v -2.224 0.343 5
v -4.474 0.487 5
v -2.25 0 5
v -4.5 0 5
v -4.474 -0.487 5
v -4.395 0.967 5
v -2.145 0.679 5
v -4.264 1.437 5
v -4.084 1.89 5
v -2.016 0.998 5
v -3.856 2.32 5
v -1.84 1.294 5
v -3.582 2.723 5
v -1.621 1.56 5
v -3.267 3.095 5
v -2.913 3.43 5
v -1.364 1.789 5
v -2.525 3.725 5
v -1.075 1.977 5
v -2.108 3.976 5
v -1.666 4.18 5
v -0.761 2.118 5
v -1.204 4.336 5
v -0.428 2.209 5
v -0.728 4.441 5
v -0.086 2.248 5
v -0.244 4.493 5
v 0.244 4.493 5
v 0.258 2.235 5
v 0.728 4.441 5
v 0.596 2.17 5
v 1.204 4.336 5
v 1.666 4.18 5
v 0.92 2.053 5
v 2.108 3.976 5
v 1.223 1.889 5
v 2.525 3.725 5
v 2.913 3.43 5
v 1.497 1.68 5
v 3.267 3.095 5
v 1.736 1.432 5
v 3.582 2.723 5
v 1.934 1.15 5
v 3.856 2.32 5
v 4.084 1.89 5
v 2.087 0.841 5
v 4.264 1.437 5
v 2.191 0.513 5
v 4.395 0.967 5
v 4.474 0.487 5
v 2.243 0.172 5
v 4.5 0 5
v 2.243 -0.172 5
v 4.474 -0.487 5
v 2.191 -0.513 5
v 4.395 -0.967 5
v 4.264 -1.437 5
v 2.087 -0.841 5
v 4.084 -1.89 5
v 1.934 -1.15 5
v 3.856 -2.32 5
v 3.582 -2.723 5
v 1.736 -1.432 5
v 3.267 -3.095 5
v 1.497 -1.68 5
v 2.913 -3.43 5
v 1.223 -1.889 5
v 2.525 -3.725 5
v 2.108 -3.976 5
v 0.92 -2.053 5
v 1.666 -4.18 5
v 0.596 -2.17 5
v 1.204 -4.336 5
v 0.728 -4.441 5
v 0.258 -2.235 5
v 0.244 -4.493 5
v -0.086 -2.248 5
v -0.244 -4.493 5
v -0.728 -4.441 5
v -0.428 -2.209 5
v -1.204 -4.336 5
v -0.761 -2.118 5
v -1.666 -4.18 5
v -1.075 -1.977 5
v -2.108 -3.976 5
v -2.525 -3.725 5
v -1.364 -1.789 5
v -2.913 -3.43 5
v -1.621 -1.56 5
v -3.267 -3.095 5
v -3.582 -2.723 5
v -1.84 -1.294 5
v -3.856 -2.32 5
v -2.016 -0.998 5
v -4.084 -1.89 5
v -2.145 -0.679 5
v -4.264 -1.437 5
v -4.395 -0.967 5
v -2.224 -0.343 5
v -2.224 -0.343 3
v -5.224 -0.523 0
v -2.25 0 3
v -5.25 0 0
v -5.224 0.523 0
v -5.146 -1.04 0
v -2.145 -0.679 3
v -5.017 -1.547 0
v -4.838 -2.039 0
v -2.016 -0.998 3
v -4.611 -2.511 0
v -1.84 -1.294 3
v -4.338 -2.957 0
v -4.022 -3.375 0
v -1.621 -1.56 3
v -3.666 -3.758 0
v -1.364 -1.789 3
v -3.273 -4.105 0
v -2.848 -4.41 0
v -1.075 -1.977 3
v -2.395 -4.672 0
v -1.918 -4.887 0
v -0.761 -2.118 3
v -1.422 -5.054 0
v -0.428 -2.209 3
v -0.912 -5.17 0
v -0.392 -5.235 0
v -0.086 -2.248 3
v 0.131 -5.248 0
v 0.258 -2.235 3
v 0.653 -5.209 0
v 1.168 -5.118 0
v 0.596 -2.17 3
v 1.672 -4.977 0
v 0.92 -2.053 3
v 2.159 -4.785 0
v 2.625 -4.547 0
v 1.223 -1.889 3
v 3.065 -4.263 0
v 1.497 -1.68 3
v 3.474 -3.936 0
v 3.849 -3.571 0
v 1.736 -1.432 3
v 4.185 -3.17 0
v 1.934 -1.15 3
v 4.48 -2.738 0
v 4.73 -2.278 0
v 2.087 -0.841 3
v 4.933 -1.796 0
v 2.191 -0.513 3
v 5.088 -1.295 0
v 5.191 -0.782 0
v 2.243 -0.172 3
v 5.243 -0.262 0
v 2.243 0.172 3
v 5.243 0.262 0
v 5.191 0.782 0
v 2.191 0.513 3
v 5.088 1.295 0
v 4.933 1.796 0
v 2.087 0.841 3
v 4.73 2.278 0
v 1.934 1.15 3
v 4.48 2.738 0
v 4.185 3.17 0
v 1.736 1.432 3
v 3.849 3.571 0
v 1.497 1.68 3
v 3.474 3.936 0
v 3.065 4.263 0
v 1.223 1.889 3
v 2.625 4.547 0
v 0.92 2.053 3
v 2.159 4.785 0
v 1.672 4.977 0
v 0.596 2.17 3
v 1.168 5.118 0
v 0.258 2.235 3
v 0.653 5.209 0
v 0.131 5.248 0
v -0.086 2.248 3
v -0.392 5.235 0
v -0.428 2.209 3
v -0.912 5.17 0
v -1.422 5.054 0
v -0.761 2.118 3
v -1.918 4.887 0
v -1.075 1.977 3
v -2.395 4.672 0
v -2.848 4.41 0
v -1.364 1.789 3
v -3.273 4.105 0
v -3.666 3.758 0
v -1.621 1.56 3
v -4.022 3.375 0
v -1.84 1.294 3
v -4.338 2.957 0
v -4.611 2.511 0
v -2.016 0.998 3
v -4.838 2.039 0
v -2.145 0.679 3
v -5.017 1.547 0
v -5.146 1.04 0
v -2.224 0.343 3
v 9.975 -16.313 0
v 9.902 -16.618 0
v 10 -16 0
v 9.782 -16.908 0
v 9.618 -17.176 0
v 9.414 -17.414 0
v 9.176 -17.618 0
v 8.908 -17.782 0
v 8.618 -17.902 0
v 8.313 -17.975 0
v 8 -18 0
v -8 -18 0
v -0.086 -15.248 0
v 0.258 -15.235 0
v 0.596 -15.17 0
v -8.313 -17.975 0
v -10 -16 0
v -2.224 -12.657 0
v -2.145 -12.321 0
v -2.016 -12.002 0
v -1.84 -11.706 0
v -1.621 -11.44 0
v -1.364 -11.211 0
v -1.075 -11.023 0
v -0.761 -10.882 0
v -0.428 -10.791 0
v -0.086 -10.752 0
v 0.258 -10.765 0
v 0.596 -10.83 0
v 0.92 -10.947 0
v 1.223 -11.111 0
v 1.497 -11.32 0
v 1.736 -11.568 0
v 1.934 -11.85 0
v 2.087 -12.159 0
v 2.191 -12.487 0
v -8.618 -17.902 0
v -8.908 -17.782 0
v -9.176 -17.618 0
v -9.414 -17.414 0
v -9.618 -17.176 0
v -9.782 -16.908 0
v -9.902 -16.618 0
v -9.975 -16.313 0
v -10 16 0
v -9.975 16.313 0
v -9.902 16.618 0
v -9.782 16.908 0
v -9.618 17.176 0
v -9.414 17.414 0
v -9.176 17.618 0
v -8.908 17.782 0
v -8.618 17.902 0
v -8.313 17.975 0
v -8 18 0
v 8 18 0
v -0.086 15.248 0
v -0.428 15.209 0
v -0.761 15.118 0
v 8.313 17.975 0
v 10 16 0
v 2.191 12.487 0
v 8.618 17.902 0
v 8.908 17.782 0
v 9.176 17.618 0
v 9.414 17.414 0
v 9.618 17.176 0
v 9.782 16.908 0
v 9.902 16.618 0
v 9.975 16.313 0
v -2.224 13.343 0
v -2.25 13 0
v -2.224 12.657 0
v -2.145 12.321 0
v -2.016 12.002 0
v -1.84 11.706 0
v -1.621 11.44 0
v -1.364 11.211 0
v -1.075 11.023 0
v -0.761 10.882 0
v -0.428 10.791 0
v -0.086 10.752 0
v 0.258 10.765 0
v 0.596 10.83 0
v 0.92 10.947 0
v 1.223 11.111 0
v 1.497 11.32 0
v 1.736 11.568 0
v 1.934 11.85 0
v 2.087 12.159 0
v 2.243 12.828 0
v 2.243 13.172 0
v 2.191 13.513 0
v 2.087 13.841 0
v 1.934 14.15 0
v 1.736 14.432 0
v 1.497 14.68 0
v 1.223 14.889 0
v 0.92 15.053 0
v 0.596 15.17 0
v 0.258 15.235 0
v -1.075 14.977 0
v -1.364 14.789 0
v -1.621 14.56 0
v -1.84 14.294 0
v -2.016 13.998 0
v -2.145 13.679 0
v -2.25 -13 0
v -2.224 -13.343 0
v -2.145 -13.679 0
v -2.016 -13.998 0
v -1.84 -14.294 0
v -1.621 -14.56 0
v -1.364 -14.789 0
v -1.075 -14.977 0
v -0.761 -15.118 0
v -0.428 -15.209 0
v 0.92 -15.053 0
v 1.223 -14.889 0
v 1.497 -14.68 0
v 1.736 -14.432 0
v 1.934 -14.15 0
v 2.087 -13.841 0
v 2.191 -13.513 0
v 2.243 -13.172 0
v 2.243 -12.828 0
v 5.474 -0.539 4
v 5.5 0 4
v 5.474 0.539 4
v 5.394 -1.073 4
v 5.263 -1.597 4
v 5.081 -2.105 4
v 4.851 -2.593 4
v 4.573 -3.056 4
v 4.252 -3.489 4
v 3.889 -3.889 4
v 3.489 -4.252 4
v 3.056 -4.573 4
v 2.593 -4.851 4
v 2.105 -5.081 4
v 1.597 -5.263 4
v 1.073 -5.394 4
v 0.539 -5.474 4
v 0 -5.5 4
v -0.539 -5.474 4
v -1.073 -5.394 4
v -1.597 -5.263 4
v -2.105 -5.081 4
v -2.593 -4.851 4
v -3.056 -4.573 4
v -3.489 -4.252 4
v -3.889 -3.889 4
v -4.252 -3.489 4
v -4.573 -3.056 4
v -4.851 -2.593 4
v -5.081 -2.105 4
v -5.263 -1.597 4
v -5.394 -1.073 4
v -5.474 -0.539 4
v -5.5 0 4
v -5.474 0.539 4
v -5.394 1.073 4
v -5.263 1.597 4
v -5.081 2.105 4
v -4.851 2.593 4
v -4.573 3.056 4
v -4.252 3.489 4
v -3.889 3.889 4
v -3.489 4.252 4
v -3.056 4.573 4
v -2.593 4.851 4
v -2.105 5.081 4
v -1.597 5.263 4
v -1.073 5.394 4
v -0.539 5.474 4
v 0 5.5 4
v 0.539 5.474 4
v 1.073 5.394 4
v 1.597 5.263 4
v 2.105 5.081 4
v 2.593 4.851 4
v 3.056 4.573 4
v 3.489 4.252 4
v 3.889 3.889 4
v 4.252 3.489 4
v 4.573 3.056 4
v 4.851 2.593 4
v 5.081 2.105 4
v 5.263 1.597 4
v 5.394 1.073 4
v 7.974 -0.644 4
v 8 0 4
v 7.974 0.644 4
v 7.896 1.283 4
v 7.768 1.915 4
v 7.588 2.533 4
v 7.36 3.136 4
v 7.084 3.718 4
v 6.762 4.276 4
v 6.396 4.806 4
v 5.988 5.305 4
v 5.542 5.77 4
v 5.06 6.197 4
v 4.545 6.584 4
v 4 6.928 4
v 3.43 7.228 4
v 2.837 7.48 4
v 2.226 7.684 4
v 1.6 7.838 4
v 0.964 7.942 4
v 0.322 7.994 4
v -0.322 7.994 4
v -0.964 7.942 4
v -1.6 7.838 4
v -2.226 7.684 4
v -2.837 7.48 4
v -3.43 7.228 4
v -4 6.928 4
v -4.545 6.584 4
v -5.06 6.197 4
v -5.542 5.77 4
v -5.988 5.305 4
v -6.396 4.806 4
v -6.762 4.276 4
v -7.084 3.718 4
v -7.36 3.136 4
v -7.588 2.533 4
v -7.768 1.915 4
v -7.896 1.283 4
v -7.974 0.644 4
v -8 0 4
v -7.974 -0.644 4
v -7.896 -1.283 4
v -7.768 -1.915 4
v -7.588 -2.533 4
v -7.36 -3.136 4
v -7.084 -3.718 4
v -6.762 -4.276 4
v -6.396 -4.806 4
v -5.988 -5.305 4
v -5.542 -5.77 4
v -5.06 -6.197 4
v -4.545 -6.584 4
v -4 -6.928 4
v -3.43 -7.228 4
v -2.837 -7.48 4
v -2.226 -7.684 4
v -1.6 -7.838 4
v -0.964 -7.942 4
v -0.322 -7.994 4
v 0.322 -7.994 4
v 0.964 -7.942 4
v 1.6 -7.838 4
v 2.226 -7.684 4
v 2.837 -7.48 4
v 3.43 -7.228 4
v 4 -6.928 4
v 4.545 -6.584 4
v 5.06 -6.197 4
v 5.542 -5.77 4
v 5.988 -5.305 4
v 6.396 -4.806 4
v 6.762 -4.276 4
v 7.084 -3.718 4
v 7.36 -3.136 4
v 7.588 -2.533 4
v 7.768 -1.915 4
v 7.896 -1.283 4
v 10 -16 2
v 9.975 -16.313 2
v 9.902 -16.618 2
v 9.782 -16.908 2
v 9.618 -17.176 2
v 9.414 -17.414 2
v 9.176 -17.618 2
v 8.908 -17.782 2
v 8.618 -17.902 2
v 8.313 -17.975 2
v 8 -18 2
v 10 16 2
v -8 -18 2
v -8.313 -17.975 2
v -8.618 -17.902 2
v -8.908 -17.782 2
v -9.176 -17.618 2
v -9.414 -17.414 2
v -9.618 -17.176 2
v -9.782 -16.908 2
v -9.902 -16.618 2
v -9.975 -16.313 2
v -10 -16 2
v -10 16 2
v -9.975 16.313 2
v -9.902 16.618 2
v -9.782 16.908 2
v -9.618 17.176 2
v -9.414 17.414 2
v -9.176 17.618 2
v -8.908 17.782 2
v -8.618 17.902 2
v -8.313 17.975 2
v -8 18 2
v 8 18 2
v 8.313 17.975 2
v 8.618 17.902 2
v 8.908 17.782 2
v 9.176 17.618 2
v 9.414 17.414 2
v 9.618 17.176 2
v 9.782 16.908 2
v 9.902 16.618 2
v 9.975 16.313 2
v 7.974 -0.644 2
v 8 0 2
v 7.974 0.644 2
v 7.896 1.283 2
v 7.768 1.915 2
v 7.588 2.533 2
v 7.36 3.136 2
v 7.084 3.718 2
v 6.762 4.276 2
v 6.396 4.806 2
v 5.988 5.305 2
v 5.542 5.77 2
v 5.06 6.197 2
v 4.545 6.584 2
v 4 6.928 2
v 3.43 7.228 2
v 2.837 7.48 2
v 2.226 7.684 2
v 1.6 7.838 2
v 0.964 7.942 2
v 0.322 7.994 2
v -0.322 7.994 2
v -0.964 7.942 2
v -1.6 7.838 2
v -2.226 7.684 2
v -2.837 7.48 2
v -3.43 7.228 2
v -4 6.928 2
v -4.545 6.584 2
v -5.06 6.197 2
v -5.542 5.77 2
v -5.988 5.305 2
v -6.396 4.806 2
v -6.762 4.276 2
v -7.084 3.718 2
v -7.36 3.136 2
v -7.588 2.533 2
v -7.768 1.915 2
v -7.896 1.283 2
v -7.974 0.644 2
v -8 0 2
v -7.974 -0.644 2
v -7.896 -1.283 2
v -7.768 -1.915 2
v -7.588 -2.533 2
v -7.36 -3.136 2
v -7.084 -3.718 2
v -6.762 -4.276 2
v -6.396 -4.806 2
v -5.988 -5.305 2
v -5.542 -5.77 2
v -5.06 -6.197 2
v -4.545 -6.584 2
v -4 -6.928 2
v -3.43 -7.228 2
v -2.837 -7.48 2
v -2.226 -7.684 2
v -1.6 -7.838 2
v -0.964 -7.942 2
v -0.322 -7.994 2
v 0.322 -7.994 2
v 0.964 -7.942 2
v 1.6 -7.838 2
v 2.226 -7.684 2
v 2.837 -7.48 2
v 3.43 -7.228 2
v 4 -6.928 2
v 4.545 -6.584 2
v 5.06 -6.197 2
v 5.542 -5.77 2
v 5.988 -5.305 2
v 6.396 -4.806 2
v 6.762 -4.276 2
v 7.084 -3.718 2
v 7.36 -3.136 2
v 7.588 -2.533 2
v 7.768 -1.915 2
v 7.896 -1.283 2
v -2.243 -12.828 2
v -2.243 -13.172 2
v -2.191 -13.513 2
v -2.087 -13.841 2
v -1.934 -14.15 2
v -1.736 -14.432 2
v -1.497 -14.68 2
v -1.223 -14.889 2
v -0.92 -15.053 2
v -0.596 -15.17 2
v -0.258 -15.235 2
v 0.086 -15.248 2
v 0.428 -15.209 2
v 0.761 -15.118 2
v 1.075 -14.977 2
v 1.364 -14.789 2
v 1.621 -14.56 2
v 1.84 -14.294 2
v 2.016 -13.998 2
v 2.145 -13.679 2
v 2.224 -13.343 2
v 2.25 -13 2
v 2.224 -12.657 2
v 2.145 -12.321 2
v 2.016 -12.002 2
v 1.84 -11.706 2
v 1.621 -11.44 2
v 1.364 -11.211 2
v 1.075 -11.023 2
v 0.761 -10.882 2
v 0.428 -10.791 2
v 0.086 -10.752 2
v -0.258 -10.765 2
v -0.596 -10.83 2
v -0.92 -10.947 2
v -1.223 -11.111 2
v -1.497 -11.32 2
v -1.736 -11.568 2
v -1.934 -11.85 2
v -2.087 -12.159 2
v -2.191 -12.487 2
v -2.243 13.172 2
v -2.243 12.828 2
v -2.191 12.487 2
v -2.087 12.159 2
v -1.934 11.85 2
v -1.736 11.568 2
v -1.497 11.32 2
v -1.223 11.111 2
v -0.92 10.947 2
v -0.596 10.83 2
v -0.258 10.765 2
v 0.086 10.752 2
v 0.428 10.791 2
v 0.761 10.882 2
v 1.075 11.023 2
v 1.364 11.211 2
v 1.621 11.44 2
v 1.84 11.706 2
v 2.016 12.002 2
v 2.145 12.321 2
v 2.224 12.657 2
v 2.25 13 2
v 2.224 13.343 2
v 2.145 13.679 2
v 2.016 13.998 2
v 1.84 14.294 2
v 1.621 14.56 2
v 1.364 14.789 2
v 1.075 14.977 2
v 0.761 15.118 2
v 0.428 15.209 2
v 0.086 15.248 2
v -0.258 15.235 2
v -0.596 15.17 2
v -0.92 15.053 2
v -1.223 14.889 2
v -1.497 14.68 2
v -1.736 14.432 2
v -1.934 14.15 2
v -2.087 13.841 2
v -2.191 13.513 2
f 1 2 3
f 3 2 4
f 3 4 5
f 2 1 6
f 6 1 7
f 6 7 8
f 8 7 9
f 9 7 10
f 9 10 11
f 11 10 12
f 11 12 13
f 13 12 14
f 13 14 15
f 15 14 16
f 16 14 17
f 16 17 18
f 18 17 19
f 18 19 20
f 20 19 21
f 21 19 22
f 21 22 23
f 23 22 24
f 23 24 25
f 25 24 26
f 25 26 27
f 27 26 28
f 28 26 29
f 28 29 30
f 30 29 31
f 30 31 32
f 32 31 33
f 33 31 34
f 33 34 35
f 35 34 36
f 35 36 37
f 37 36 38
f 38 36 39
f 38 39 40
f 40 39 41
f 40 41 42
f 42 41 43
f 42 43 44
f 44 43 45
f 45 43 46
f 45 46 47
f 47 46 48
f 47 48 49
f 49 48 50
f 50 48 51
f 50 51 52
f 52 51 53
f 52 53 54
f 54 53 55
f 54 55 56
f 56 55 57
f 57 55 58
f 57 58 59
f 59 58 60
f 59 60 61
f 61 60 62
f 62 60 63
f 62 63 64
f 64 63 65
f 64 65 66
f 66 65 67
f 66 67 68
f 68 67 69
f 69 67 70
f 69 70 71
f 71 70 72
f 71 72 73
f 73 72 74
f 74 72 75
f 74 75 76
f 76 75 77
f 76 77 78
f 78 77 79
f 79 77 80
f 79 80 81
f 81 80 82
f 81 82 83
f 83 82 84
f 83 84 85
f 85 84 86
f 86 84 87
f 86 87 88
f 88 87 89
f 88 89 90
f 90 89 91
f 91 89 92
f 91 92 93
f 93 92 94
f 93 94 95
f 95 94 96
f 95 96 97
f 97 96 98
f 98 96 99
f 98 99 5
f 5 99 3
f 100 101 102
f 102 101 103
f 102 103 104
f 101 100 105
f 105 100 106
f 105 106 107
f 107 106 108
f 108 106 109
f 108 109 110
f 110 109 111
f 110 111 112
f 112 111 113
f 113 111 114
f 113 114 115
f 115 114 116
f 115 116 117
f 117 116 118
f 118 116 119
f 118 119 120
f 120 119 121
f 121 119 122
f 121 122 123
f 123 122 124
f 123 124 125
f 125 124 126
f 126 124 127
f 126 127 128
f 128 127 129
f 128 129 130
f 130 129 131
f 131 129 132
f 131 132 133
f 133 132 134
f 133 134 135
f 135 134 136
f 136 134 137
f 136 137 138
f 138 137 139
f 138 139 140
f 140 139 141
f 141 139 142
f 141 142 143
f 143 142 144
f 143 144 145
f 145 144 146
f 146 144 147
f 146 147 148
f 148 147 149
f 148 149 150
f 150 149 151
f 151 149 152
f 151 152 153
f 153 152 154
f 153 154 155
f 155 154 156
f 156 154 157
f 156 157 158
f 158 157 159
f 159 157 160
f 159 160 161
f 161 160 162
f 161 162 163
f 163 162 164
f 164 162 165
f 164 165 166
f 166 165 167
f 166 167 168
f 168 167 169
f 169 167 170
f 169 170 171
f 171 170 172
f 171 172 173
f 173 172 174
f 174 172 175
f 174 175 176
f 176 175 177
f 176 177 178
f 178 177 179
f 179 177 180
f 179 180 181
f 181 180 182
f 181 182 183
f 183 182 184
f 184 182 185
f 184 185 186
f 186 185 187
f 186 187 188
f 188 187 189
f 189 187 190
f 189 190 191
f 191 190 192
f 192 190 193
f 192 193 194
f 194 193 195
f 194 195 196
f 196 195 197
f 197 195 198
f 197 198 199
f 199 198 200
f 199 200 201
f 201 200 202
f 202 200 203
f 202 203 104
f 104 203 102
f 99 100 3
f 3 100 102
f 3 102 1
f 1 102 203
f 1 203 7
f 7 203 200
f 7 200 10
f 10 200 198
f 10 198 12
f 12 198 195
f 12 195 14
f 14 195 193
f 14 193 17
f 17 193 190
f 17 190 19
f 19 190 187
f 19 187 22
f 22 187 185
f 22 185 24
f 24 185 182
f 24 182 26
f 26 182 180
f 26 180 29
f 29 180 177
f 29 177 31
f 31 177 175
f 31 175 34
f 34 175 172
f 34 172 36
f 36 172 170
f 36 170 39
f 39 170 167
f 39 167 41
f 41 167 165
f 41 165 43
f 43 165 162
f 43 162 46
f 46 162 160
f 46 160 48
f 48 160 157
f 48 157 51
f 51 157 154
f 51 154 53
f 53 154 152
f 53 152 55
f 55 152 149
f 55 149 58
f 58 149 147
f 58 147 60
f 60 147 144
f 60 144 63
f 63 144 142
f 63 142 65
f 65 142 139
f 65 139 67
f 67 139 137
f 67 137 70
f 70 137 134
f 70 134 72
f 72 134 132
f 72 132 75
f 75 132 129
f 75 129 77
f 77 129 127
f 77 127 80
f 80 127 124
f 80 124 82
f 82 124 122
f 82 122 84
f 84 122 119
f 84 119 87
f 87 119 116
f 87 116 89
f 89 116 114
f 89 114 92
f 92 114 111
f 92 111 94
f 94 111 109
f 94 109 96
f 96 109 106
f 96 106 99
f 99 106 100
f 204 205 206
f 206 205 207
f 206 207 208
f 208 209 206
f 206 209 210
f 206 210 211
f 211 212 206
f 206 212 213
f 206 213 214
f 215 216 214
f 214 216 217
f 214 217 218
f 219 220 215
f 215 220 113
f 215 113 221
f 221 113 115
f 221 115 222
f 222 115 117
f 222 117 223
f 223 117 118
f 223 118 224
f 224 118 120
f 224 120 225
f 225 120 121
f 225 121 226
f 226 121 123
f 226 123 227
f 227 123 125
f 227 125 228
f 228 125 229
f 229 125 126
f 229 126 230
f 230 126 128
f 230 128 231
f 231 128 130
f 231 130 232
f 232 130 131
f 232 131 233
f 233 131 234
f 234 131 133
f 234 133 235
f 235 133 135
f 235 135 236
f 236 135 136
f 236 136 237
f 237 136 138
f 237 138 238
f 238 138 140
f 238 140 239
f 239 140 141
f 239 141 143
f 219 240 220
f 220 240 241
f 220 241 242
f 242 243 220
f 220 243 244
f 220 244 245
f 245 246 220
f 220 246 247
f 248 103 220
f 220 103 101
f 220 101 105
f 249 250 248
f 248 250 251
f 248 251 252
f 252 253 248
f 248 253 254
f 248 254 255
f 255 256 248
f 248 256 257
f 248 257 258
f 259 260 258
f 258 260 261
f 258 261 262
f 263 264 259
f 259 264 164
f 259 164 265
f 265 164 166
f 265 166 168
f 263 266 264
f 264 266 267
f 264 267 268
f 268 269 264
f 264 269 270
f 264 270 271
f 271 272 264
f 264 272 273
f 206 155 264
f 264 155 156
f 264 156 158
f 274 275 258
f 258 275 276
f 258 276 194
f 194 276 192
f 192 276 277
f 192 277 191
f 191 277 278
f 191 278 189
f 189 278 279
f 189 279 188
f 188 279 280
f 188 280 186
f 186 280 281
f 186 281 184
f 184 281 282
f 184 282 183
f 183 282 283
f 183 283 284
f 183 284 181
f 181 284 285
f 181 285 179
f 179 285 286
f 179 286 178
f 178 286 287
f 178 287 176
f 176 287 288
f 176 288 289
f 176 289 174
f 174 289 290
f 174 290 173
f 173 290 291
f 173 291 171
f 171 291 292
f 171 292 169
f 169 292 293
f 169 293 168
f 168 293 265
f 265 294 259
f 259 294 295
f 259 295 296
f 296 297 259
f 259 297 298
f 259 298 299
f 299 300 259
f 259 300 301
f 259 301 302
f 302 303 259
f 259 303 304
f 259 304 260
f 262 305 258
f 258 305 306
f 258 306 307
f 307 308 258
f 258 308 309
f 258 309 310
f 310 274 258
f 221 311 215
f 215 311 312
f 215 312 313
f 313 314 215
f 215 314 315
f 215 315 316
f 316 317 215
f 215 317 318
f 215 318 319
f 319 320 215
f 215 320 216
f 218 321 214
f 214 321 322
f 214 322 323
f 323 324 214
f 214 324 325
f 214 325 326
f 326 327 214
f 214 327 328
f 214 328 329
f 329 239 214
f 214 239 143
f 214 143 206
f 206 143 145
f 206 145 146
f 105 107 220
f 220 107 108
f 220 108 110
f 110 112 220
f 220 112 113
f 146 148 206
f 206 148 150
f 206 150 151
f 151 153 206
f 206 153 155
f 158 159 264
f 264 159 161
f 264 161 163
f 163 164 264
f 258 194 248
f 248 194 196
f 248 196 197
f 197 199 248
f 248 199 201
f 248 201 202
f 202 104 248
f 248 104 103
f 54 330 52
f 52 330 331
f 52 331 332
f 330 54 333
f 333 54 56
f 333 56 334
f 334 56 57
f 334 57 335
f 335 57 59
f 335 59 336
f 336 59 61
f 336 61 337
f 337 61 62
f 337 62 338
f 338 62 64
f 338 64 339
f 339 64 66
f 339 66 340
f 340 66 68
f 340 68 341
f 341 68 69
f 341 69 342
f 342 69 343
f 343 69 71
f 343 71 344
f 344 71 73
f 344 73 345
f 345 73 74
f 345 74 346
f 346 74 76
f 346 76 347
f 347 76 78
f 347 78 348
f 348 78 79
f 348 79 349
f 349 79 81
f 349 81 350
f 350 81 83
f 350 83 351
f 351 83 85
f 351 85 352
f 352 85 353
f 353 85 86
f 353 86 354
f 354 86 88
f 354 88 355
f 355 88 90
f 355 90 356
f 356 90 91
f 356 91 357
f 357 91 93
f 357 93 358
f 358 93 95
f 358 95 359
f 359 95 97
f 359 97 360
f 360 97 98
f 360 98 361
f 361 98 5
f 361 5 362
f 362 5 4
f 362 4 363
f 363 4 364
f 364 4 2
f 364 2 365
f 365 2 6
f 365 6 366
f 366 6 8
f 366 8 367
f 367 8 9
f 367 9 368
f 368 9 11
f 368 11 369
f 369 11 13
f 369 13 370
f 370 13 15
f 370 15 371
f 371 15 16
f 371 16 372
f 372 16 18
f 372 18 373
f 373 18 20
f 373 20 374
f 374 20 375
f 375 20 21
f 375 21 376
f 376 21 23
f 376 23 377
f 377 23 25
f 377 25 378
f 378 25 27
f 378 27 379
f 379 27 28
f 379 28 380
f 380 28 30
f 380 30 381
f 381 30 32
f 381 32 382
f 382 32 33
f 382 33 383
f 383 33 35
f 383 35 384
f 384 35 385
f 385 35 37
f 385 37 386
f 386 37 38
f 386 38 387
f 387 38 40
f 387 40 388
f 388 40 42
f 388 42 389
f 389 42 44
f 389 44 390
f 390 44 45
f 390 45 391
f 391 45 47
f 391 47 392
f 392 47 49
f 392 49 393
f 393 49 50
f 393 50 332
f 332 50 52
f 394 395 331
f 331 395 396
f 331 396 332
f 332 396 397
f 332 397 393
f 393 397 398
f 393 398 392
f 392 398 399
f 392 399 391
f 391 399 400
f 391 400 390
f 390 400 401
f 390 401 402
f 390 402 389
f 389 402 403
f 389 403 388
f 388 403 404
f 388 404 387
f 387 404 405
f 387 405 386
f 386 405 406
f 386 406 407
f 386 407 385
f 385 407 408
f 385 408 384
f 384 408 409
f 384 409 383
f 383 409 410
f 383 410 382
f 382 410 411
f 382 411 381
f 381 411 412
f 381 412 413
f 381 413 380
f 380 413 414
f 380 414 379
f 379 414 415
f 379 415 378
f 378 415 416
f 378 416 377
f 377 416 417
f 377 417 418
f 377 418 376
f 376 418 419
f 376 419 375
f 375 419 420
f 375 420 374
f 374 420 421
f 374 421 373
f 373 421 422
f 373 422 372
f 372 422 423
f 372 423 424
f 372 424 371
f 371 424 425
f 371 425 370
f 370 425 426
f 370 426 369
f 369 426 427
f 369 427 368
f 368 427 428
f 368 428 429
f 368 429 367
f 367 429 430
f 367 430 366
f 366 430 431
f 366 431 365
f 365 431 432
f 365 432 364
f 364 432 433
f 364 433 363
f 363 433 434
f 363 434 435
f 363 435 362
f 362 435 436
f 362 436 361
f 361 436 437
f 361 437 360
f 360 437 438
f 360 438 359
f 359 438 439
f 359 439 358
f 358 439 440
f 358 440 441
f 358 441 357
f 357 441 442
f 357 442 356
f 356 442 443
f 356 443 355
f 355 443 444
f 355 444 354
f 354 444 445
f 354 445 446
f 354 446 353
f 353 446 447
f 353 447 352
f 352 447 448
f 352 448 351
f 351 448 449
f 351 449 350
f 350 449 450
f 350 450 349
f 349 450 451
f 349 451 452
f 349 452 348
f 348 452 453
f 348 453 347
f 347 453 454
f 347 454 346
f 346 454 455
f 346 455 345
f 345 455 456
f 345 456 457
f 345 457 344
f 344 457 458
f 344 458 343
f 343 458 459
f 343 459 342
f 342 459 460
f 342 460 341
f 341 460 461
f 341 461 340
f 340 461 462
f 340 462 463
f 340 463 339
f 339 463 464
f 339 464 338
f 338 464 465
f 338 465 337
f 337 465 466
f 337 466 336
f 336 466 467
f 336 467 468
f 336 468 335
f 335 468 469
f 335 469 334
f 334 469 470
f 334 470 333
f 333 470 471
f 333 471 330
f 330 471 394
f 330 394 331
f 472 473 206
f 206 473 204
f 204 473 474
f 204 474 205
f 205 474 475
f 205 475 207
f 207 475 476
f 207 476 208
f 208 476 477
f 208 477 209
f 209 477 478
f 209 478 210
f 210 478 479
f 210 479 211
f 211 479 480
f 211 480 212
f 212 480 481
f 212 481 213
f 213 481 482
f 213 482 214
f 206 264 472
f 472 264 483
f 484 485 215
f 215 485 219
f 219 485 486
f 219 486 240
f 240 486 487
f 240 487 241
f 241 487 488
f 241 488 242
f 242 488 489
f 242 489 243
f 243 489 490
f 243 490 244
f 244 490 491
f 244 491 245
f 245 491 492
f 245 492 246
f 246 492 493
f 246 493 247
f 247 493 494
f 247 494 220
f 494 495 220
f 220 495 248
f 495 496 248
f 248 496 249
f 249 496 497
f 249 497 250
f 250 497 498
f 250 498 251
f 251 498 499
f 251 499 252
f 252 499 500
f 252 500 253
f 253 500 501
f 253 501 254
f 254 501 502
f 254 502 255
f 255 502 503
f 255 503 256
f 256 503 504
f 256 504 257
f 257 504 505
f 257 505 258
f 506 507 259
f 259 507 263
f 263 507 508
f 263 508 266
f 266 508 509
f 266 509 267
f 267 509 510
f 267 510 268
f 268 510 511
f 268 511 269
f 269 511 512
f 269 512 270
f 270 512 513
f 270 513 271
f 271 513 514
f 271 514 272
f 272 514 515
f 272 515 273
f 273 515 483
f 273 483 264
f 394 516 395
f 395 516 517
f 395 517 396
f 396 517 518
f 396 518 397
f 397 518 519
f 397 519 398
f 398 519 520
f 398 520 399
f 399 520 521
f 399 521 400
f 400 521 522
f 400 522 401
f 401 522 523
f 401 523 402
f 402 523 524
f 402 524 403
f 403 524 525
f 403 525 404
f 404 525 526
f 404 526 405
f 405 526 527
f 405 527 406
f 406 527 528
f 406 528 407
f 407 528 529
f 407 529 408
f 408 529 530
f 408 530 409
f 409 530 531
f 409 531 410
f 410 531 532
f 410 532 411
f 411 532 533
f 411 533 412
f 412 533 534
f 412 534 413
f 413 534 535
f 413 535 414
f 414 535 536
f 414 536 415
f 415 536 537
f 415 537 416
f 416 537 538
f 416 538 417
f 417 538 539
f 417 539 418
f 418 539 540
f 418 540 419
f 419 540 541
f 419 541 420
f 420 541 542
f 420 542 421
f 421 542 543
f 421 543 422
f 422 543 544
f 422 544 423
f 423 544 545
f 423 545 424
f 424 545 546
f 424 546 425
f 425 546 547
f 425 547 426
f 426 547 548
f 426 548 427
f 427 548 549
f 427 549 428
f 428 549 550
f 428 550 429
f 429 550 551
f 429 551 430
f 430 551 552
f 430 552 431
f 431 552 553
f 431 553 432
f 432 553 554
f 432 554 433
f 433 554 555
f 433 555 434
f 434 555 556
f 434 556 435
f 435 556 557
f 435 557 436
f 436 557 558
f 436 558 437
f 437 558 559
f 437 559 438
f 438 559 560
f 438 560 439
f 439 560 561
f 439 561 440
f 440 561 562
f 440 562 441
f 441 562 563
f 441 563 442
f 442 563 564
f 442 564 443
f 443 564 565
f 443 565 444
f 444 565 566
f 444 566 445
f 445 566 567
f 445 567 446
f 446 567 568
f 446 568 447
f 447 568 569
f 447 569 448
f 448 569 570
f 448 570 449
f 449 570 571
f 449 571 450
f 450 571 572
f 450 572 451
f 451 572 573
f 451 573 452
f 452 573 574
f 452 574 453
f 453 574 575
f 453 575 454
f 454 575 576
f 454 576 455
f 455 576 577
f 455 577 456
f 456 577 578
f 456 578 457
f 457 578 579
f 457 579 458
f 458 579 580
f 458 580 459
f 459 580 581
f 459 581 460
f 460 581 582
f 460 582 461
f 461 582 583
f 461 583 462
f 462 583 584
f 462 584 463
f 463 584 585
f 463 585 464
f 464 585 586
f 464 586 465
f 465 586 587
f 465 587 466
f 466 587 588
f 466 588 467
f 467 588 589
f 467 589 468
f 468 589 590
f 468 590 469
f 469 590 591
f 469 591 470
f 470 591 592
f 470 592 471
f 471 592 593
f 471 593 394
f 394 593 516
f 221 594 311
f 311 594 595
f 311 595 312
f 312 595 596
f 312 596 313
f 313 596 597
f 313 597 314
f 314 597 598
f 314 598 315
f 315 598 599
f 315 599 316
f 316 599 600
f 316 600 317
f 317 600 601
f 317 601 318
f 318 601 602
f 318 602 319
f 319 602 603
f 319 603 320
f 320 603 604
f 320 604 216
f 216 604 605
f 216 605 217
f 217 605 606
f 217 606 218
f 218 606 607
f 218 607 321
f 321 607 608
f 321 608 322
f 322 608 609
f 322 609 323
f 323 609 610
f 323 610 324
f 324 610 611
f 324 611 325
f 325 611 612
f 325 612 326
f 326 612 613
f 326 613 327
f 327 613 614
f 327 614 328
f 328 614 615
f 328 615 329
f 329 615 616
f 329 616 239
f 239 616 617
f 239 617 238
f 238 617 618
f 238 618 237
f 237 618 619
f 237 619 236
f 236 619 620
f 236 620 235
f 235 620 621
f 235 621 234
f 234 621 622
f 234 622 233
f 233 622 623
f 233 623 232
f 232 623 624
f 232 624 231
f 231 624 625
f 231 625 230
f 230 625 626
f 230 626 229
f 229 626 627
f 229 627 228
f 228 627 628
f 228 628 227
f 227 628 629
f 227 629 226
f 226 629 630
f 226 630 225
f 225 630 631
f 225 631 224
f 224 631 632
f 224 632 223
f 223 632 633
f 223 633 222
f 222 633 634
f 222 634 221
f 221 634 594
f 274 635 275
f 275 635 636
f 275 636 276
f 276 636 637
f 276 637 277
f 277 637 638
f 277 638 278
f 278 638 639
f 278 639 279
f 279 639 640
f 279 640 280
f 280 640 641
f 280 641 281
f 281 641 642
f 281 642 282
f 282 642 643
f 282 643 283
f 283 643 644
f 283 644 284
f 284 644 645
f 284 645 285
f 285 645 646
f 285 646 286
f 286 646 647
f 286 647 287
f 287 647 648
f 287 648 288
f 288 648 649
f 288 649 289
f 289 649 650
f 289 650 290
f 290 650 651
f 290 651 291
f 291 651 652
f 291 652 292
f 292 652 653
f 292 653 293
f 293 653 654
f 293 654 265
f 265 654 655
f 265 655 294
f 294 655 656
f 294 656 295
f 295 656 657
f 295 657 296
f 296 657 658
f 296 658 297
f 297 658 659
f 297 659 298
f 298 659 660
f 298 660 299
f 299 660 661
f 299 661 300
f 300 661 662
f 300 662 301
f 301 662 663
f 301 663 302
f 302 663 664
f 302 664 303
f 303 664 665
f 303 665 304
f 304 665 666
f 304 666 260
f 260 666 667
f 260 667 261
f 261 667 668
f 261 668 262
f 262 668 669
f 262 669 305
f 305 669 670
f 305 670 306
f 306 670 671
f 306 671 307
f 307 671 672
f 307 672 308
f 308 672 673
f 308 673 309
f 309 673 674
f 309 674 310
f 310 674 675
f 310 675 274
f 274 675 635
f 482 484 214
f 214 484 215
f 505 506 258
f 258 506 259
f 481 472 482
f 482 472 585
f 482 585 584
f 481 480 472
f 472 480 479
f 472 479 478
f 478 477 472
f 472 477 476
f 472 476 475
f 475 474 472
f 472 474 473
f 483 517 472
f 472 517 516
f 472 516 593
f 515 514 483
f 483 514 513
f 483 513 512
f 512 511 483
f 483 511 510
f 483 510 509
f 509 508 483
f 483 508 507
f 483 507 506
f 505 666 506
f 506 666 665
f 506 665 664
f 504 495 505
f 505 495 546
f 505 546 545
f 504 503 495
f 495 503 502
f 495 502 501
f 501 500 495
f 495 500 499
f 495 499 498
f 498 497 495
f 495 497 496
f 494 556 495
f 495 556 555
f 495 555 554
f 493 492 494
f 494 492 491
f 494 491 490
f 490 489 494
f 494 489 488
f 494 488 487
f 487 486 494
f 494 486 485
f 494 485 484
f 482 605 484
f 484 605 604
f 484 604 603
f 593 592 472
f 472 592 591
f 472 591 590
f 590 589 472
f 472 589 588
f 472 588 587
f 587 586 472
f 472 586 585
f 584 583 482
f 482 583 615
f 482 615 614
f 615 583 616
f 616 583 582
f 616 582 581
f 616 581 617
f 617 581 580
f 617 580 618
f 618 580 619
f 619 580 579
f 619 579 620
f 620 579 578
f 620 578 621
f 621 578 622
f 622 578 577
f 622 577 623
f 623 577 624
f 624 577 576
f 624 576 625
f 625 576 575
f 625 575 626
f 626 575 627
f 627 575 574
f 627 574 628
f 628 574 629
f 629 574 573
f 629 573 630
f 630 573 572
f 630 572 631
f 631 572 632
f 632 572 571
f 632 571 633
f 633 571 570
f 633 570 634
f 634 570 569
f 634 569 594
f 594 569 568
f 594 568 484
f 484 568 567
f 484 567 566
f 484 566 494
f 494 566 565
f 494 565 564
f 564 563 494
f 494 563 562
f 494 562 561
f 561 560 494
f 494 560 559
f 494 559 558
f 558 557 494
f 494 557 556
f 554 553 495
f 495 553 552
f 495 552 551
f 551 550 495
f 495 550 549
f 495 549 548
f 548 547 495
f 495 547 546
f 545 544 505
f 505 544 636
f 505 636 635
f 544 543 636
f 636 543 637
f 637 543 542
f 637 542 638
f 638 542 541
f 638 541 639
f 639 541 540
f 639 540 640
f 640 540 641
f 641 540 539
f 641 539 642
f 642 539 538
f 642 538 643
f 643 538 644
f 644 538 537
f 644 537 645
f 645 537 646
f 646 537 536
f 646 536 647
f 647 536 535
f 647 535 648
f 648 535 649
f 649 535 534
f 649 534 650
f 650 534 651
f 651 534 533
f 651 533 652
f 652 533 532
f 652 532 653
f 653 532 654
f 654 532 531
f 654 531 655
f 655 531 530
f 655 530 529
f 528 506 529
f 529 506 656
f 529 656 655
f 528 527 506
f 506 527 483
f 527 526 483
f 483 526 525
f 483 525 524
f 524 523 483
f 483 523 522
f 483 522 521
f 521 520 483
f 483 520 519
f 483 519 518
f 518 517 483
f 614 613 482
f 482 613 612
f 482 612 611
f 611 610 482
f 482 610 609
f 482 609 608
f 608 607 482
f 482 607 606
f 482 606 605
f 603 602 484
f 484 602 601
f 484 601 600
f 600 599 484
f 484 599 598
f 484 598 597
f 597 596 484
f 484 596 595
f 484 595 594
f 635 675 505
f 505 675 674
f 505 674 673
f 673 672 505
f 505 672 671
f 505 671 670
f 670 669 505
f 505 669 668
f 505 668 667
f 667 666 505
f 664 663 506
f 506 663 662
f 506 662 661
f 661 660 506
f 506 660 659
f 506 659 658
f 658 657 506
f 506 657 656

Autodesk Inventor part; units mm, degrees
ref_plane "YZ Plane" through (0, 0, 0) normal (1, 0, 0) x (0, 1, 0)
ref_plane "XZ Plane" through (0, 0, 0) normal (0, 1, 0) x (-1, 0, 0)
ref_plane "XY Plane" through (0, 0, 0) normal (0, 0, 1) x (1, 0, 0)
sketch "Sketch4" plane through (0, 0, 0) normal (0, 0, 1) x (1, 0, 0)
  line L0 (-10, -18) -> (10, -18)
  line L1 (10, -18) -> (10, 18)
  line L2 (10, 18) -> (-10, 18)
  line L3 (-10, 18) -> (-10, -18)
  line L4 (-10, -18) -> (10, 18) construction
  line L5 (10, -18) -> (-10, 18) construction
  point P0 (0, 0)
  dimension "d16" = 20
  dimension "d17" = 36
extrude "Extrusion4" add sketch "Sketch4" along normal blind 2
sketch "Sketch5" plane through (0, 0, 2) normal (0, 0, 1) x (1, 0, 0)
  line L0 (0, 25.2) -> (0, -25.2) projected
  circle A0 centre (0, 13) radius 2.25
  circle A1 centre (0, -13) radius 2.25
  line L1 (10, 18) -> (-10, 18) projected
  line L2 (-10, -18) -> (10, -18) projected
  point P0 (0, 0)
  dimension "d20" = 4.5
  dimension "d21" = 4.5
  dimension "d22" = 5
  dimension "d23" = 5
extrude "Extrusion5" cut sketch "Sketch5" against normal through all
sketch "Sketch6" plane through (0, 0, 2) normal (0, 0, 1) x (1, 0, 0)
  circle A0 centre (0, 0) radius 8
  dimension "d26" = 16
extrude "Extrusion6" add sketch "Sketch6" along normal blind 2
fillet "Fillet1" radius 2 4 edges at (10, 18, 1) (-10, 18, 1) (-10, -18, 1) (10, -18, 1)
sketch "Sketch7" plane through (0, 0, 4) normal (0, 0, 1) x (1, 0, 0)
  circle A0 centre (0, 0) radius 3.5
  dimension "d30" = 7
extrude "Extrusion7" add sketch "Sketch7" along normal blind 6
chamfer "Chamfer1" distance 2 angle 45 1 edges at (-3.5, 0, 4)
sketch "Sketch8" plane through (0, 0, 10) normal (0, 0, 1) x (1, 0, 0)
  circle A0 centre (0, 0) radius 2.25
  dimension "d36" = 4.5
extrude "Extrusion8" cut sketch "Sketch8" against normal through all
chamfer "Chamfer2" distance 3 angle 45 1 edges at (-2.25, 0, 0)
sketch "Sketch10" plane through (0, 0, 10) normal (0, 0, 1) x (1, 0, 0)
  circle A0 centre (0, 0) radius 13.6126
extrude "Extrusion9" cut sketch "Sketch10" against normal blind 5
equation "\"d21\" = d20"
equation "\"d23\" = d22"
properties part number "LinearActuatorHolder"
